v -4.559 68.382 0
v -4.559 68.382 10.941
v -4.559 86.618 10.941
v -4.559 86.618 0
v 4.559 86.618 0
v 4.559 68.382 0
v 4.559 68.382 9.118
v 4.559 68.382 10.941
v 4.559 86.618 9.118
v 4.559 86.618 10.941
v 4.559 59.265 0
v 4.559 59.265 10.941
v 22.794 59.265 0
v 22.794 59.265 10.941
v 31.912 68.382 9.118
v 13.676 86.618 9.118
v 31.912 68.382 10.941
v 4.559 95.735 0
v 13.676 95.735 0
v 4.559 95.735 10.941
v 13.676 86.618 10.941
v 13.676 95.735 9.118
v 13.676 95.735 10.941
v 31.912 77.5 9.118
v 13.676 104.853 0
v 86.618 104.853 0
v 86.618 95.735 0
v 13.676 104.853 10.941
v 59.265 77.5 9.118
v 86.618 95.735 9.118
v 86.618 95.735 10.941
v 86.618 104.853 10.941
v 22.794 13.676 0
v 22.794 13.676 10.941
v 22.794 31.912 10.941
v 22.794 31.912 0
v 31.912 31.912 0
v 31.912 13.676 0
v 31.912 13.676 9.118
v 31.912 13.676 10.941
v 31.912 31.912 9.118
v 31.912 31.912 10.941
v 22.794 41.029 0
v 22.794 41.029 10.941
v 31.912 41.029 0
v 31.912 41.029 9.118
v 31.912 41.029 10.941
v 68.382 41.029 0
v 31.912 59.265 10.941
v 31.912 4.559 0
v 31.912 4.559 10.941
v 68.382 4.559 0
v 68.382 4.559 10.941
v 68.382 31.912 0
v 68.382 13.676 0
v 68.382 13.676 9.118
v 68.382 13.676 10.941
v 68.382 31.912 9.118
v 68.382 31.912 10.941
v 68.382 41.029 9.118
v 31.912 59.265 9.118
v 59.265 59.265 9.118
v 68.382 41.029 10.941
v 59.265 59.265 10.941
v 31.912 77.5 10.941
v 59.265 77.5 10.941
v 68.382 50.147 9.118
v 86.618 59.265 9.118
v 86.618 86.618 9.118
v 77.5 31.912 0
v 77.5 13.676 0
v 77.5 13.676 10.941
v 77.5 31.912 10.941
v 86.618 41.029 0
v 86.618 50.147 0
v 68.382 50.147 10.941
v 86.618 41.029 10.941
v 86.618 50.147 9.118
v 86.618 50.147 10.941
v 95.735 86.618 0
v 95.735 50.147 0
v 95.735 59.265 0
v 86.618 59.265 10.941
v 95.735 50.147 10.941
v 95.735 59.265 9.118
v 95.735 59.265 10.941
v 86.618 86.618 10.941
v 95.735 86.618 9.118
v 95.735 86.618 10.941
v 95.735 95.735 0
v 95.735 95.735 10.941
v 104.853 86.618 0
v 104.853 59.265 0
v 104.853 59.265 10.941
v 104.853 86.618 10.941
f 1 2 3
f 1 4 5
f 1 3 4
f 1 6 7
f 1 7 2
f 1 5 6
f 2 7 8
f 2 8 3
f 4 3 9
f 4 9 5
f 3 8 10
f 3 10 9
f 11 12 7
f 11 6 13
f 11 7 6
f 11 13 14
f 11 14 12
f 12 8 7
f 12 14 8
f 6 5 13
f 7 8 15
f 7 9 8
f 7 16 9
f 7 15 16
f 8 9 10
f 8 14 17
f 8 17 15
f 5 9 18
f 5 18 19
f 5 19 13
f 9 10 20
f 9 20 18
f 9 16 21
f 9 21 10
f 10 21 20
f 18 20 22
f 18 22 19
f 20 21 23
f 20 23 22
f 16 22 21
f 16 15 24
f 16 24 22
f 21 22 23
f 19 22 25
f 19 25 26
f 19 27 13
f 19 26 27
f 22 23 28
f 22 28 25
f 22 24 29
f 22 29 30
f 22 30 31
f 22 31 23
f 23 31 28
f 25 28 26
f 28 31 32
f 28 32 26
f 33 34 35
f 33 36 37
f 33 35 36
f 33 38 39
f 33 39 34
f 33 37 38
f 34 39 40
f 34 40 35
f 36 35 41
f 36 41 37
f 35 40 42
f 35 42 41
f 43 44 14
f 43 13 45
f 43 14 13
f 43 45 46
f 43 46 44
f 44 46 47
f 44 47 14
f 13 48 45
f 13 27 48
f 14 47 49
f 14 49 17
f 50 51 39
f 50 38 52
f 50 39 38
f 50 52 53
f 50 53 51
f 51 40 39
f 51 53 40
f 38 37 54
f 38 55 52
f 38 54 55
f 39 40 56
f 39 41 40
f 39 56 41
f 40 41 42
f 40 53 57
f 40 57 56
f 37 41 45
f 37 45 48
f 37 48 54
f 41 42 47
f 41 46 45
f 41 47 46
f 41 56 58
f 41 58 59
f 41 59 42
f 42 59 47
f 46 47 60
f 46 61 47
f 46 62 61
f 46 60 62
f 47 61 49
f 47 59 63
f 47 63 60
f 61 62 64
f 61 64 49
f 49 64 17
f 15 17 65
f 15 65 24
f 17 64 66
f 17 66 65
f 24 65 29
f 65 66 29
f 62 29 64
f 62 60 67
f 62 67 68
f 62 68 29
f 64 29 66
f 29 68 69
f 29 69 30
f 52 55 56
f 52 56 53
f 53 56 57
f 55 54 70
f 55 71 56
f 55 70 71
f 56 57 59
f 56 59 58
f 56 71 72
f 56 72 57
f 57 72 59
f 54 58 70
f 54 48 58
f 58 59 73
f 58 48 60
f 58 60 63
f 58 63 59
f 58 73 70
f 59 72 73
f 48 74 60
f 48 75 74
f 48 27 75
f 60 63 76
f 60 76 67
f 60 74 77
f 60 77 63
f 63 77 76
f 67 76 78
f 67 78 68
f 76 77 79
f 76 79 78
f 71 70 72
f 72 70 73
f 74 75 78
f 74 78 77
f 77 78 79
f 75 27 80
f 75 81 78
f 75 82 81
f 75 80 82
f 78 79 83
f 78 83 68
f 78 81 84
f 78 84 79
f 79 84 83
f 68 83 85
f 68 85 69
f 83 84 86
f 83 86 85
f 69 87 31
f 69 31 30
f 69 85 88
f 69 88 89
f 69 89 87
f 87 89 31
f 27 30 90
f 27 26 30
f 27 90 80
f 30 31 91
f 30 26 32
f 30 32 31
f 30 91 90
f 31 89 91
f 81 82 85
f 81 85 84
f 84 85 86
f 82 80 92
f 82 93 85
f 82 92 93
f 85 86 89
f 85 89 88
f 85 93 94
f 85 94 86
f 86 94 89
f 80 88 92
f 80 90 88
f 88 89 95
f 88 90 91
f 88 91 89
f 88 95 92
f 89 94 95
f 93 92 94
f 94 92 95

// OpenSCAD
// file: pixel_canvas.scad
module pixel(x, y, pixel_color, pixel_height = 1.0) {
    color(pixel_color) {
	linear_extrude(height = pixel_height) {
	    translate([x, y]) {
		square(size = 1, center=true);
	    }
	}
    }
}

module pixel_canvas(canvas_size, pixel_count, pixels, color_palette, color_heights) {
    pixel_size = canvas_size / pixel_count;
    scale([pixel_size, pixel_size, 1.0]) {
	for (coord = pixels) {
	    x = coord[0];
	    y = coord[1];
	    color_index = coord[2];
	    pixel(x=x, y=y, pixel_color=color_palette[color_index], pixel_height=color_heights[color_index] * pixel_size);
	}
    }
}
// main file
use <pixel_canvas.scad>

COLOR_PALETTE = [
  "white",
  "black",
];

// 11 x 11

COLOR_HEIGHTS = [
  1.0,
  1.2,
];

PIXELS = [
	  [2, 11, 1], [3, 11, 1], [4, 11, 1], [5, 11, 1], [6, 11, 1], [7, 11, 1], [8, 11, 1], [9, 11, 1],
	  [1, 10, 1], [2, 10, 0], [3, 10, 0], [4, 10, 0], [5, 10, 0], [6, 10, 0], [7, 10, 0], [8, 10, 0], [9, 10, 0], [10, 10, 1],
	  [0, 9, 1], [1, 9, 0], [2, 9, 0], [3, 9, 0], [4, 9, 0], [5, 9, 0], [6, 9, 0], [7, 9, 0], [8, 9, 0], [9, 9, 0], [10, 9, 0], [11, 9, 1],
	  [0, 8, 1], [1, 8, 0], [2, 8, 0], [3, 8, 0], [4, 8, 1], [5, 8, 1], [6, 8, 1], [7, 8, 0], [8, 8, 0], [9, 8, 0], [10, 8, 0], [11, 8, 1],
	  [1, 7, 1], [2, 7, 1], [3, 7, 1], [4, 7, 1], [5, 7, 1], [6, 7, 1], [7, 7, 0], [8, 7, 0], [9, 7, 0], [10, 7, 0], [11, 7, 1],
	  [3, 6, 1], [4, 6, 0], [5, 6, 0], [6, 6, 0], [7, 6, 0], [8, 6, 0], [9, 6, 0], [10, 6, 1],
	  [3, 5, 1], [4, 5, 0], [5, 5, 0], [6, 5, 0], [7, 5, 0], [8, 5, 1], [9, 5, 1],
	  [4, 4, 1], [5, 4, 1], [6, 4, 1], [7, 4, 1],
	  [3, 3, 1], [4, 3, 0], [5, 3, 0], [6, 3, 0], [7, 3, 0], [8, 3, 1],
	  [3, 2, 1], [4, 2, 0], [5, 2, 0], [6, 2, 0], [7, 2, 0], [8, 2, 1],
	  [4, 1, 1], [5, 1, 1], [6, 1, 1], [7, 1, 1],
];

pixel_canvas(canvas_size=155, pixel_count=17, pixels=PIXELS, color_palette=COLOR_PALETTE, color_heights=COLOR_HEIGHTS);
